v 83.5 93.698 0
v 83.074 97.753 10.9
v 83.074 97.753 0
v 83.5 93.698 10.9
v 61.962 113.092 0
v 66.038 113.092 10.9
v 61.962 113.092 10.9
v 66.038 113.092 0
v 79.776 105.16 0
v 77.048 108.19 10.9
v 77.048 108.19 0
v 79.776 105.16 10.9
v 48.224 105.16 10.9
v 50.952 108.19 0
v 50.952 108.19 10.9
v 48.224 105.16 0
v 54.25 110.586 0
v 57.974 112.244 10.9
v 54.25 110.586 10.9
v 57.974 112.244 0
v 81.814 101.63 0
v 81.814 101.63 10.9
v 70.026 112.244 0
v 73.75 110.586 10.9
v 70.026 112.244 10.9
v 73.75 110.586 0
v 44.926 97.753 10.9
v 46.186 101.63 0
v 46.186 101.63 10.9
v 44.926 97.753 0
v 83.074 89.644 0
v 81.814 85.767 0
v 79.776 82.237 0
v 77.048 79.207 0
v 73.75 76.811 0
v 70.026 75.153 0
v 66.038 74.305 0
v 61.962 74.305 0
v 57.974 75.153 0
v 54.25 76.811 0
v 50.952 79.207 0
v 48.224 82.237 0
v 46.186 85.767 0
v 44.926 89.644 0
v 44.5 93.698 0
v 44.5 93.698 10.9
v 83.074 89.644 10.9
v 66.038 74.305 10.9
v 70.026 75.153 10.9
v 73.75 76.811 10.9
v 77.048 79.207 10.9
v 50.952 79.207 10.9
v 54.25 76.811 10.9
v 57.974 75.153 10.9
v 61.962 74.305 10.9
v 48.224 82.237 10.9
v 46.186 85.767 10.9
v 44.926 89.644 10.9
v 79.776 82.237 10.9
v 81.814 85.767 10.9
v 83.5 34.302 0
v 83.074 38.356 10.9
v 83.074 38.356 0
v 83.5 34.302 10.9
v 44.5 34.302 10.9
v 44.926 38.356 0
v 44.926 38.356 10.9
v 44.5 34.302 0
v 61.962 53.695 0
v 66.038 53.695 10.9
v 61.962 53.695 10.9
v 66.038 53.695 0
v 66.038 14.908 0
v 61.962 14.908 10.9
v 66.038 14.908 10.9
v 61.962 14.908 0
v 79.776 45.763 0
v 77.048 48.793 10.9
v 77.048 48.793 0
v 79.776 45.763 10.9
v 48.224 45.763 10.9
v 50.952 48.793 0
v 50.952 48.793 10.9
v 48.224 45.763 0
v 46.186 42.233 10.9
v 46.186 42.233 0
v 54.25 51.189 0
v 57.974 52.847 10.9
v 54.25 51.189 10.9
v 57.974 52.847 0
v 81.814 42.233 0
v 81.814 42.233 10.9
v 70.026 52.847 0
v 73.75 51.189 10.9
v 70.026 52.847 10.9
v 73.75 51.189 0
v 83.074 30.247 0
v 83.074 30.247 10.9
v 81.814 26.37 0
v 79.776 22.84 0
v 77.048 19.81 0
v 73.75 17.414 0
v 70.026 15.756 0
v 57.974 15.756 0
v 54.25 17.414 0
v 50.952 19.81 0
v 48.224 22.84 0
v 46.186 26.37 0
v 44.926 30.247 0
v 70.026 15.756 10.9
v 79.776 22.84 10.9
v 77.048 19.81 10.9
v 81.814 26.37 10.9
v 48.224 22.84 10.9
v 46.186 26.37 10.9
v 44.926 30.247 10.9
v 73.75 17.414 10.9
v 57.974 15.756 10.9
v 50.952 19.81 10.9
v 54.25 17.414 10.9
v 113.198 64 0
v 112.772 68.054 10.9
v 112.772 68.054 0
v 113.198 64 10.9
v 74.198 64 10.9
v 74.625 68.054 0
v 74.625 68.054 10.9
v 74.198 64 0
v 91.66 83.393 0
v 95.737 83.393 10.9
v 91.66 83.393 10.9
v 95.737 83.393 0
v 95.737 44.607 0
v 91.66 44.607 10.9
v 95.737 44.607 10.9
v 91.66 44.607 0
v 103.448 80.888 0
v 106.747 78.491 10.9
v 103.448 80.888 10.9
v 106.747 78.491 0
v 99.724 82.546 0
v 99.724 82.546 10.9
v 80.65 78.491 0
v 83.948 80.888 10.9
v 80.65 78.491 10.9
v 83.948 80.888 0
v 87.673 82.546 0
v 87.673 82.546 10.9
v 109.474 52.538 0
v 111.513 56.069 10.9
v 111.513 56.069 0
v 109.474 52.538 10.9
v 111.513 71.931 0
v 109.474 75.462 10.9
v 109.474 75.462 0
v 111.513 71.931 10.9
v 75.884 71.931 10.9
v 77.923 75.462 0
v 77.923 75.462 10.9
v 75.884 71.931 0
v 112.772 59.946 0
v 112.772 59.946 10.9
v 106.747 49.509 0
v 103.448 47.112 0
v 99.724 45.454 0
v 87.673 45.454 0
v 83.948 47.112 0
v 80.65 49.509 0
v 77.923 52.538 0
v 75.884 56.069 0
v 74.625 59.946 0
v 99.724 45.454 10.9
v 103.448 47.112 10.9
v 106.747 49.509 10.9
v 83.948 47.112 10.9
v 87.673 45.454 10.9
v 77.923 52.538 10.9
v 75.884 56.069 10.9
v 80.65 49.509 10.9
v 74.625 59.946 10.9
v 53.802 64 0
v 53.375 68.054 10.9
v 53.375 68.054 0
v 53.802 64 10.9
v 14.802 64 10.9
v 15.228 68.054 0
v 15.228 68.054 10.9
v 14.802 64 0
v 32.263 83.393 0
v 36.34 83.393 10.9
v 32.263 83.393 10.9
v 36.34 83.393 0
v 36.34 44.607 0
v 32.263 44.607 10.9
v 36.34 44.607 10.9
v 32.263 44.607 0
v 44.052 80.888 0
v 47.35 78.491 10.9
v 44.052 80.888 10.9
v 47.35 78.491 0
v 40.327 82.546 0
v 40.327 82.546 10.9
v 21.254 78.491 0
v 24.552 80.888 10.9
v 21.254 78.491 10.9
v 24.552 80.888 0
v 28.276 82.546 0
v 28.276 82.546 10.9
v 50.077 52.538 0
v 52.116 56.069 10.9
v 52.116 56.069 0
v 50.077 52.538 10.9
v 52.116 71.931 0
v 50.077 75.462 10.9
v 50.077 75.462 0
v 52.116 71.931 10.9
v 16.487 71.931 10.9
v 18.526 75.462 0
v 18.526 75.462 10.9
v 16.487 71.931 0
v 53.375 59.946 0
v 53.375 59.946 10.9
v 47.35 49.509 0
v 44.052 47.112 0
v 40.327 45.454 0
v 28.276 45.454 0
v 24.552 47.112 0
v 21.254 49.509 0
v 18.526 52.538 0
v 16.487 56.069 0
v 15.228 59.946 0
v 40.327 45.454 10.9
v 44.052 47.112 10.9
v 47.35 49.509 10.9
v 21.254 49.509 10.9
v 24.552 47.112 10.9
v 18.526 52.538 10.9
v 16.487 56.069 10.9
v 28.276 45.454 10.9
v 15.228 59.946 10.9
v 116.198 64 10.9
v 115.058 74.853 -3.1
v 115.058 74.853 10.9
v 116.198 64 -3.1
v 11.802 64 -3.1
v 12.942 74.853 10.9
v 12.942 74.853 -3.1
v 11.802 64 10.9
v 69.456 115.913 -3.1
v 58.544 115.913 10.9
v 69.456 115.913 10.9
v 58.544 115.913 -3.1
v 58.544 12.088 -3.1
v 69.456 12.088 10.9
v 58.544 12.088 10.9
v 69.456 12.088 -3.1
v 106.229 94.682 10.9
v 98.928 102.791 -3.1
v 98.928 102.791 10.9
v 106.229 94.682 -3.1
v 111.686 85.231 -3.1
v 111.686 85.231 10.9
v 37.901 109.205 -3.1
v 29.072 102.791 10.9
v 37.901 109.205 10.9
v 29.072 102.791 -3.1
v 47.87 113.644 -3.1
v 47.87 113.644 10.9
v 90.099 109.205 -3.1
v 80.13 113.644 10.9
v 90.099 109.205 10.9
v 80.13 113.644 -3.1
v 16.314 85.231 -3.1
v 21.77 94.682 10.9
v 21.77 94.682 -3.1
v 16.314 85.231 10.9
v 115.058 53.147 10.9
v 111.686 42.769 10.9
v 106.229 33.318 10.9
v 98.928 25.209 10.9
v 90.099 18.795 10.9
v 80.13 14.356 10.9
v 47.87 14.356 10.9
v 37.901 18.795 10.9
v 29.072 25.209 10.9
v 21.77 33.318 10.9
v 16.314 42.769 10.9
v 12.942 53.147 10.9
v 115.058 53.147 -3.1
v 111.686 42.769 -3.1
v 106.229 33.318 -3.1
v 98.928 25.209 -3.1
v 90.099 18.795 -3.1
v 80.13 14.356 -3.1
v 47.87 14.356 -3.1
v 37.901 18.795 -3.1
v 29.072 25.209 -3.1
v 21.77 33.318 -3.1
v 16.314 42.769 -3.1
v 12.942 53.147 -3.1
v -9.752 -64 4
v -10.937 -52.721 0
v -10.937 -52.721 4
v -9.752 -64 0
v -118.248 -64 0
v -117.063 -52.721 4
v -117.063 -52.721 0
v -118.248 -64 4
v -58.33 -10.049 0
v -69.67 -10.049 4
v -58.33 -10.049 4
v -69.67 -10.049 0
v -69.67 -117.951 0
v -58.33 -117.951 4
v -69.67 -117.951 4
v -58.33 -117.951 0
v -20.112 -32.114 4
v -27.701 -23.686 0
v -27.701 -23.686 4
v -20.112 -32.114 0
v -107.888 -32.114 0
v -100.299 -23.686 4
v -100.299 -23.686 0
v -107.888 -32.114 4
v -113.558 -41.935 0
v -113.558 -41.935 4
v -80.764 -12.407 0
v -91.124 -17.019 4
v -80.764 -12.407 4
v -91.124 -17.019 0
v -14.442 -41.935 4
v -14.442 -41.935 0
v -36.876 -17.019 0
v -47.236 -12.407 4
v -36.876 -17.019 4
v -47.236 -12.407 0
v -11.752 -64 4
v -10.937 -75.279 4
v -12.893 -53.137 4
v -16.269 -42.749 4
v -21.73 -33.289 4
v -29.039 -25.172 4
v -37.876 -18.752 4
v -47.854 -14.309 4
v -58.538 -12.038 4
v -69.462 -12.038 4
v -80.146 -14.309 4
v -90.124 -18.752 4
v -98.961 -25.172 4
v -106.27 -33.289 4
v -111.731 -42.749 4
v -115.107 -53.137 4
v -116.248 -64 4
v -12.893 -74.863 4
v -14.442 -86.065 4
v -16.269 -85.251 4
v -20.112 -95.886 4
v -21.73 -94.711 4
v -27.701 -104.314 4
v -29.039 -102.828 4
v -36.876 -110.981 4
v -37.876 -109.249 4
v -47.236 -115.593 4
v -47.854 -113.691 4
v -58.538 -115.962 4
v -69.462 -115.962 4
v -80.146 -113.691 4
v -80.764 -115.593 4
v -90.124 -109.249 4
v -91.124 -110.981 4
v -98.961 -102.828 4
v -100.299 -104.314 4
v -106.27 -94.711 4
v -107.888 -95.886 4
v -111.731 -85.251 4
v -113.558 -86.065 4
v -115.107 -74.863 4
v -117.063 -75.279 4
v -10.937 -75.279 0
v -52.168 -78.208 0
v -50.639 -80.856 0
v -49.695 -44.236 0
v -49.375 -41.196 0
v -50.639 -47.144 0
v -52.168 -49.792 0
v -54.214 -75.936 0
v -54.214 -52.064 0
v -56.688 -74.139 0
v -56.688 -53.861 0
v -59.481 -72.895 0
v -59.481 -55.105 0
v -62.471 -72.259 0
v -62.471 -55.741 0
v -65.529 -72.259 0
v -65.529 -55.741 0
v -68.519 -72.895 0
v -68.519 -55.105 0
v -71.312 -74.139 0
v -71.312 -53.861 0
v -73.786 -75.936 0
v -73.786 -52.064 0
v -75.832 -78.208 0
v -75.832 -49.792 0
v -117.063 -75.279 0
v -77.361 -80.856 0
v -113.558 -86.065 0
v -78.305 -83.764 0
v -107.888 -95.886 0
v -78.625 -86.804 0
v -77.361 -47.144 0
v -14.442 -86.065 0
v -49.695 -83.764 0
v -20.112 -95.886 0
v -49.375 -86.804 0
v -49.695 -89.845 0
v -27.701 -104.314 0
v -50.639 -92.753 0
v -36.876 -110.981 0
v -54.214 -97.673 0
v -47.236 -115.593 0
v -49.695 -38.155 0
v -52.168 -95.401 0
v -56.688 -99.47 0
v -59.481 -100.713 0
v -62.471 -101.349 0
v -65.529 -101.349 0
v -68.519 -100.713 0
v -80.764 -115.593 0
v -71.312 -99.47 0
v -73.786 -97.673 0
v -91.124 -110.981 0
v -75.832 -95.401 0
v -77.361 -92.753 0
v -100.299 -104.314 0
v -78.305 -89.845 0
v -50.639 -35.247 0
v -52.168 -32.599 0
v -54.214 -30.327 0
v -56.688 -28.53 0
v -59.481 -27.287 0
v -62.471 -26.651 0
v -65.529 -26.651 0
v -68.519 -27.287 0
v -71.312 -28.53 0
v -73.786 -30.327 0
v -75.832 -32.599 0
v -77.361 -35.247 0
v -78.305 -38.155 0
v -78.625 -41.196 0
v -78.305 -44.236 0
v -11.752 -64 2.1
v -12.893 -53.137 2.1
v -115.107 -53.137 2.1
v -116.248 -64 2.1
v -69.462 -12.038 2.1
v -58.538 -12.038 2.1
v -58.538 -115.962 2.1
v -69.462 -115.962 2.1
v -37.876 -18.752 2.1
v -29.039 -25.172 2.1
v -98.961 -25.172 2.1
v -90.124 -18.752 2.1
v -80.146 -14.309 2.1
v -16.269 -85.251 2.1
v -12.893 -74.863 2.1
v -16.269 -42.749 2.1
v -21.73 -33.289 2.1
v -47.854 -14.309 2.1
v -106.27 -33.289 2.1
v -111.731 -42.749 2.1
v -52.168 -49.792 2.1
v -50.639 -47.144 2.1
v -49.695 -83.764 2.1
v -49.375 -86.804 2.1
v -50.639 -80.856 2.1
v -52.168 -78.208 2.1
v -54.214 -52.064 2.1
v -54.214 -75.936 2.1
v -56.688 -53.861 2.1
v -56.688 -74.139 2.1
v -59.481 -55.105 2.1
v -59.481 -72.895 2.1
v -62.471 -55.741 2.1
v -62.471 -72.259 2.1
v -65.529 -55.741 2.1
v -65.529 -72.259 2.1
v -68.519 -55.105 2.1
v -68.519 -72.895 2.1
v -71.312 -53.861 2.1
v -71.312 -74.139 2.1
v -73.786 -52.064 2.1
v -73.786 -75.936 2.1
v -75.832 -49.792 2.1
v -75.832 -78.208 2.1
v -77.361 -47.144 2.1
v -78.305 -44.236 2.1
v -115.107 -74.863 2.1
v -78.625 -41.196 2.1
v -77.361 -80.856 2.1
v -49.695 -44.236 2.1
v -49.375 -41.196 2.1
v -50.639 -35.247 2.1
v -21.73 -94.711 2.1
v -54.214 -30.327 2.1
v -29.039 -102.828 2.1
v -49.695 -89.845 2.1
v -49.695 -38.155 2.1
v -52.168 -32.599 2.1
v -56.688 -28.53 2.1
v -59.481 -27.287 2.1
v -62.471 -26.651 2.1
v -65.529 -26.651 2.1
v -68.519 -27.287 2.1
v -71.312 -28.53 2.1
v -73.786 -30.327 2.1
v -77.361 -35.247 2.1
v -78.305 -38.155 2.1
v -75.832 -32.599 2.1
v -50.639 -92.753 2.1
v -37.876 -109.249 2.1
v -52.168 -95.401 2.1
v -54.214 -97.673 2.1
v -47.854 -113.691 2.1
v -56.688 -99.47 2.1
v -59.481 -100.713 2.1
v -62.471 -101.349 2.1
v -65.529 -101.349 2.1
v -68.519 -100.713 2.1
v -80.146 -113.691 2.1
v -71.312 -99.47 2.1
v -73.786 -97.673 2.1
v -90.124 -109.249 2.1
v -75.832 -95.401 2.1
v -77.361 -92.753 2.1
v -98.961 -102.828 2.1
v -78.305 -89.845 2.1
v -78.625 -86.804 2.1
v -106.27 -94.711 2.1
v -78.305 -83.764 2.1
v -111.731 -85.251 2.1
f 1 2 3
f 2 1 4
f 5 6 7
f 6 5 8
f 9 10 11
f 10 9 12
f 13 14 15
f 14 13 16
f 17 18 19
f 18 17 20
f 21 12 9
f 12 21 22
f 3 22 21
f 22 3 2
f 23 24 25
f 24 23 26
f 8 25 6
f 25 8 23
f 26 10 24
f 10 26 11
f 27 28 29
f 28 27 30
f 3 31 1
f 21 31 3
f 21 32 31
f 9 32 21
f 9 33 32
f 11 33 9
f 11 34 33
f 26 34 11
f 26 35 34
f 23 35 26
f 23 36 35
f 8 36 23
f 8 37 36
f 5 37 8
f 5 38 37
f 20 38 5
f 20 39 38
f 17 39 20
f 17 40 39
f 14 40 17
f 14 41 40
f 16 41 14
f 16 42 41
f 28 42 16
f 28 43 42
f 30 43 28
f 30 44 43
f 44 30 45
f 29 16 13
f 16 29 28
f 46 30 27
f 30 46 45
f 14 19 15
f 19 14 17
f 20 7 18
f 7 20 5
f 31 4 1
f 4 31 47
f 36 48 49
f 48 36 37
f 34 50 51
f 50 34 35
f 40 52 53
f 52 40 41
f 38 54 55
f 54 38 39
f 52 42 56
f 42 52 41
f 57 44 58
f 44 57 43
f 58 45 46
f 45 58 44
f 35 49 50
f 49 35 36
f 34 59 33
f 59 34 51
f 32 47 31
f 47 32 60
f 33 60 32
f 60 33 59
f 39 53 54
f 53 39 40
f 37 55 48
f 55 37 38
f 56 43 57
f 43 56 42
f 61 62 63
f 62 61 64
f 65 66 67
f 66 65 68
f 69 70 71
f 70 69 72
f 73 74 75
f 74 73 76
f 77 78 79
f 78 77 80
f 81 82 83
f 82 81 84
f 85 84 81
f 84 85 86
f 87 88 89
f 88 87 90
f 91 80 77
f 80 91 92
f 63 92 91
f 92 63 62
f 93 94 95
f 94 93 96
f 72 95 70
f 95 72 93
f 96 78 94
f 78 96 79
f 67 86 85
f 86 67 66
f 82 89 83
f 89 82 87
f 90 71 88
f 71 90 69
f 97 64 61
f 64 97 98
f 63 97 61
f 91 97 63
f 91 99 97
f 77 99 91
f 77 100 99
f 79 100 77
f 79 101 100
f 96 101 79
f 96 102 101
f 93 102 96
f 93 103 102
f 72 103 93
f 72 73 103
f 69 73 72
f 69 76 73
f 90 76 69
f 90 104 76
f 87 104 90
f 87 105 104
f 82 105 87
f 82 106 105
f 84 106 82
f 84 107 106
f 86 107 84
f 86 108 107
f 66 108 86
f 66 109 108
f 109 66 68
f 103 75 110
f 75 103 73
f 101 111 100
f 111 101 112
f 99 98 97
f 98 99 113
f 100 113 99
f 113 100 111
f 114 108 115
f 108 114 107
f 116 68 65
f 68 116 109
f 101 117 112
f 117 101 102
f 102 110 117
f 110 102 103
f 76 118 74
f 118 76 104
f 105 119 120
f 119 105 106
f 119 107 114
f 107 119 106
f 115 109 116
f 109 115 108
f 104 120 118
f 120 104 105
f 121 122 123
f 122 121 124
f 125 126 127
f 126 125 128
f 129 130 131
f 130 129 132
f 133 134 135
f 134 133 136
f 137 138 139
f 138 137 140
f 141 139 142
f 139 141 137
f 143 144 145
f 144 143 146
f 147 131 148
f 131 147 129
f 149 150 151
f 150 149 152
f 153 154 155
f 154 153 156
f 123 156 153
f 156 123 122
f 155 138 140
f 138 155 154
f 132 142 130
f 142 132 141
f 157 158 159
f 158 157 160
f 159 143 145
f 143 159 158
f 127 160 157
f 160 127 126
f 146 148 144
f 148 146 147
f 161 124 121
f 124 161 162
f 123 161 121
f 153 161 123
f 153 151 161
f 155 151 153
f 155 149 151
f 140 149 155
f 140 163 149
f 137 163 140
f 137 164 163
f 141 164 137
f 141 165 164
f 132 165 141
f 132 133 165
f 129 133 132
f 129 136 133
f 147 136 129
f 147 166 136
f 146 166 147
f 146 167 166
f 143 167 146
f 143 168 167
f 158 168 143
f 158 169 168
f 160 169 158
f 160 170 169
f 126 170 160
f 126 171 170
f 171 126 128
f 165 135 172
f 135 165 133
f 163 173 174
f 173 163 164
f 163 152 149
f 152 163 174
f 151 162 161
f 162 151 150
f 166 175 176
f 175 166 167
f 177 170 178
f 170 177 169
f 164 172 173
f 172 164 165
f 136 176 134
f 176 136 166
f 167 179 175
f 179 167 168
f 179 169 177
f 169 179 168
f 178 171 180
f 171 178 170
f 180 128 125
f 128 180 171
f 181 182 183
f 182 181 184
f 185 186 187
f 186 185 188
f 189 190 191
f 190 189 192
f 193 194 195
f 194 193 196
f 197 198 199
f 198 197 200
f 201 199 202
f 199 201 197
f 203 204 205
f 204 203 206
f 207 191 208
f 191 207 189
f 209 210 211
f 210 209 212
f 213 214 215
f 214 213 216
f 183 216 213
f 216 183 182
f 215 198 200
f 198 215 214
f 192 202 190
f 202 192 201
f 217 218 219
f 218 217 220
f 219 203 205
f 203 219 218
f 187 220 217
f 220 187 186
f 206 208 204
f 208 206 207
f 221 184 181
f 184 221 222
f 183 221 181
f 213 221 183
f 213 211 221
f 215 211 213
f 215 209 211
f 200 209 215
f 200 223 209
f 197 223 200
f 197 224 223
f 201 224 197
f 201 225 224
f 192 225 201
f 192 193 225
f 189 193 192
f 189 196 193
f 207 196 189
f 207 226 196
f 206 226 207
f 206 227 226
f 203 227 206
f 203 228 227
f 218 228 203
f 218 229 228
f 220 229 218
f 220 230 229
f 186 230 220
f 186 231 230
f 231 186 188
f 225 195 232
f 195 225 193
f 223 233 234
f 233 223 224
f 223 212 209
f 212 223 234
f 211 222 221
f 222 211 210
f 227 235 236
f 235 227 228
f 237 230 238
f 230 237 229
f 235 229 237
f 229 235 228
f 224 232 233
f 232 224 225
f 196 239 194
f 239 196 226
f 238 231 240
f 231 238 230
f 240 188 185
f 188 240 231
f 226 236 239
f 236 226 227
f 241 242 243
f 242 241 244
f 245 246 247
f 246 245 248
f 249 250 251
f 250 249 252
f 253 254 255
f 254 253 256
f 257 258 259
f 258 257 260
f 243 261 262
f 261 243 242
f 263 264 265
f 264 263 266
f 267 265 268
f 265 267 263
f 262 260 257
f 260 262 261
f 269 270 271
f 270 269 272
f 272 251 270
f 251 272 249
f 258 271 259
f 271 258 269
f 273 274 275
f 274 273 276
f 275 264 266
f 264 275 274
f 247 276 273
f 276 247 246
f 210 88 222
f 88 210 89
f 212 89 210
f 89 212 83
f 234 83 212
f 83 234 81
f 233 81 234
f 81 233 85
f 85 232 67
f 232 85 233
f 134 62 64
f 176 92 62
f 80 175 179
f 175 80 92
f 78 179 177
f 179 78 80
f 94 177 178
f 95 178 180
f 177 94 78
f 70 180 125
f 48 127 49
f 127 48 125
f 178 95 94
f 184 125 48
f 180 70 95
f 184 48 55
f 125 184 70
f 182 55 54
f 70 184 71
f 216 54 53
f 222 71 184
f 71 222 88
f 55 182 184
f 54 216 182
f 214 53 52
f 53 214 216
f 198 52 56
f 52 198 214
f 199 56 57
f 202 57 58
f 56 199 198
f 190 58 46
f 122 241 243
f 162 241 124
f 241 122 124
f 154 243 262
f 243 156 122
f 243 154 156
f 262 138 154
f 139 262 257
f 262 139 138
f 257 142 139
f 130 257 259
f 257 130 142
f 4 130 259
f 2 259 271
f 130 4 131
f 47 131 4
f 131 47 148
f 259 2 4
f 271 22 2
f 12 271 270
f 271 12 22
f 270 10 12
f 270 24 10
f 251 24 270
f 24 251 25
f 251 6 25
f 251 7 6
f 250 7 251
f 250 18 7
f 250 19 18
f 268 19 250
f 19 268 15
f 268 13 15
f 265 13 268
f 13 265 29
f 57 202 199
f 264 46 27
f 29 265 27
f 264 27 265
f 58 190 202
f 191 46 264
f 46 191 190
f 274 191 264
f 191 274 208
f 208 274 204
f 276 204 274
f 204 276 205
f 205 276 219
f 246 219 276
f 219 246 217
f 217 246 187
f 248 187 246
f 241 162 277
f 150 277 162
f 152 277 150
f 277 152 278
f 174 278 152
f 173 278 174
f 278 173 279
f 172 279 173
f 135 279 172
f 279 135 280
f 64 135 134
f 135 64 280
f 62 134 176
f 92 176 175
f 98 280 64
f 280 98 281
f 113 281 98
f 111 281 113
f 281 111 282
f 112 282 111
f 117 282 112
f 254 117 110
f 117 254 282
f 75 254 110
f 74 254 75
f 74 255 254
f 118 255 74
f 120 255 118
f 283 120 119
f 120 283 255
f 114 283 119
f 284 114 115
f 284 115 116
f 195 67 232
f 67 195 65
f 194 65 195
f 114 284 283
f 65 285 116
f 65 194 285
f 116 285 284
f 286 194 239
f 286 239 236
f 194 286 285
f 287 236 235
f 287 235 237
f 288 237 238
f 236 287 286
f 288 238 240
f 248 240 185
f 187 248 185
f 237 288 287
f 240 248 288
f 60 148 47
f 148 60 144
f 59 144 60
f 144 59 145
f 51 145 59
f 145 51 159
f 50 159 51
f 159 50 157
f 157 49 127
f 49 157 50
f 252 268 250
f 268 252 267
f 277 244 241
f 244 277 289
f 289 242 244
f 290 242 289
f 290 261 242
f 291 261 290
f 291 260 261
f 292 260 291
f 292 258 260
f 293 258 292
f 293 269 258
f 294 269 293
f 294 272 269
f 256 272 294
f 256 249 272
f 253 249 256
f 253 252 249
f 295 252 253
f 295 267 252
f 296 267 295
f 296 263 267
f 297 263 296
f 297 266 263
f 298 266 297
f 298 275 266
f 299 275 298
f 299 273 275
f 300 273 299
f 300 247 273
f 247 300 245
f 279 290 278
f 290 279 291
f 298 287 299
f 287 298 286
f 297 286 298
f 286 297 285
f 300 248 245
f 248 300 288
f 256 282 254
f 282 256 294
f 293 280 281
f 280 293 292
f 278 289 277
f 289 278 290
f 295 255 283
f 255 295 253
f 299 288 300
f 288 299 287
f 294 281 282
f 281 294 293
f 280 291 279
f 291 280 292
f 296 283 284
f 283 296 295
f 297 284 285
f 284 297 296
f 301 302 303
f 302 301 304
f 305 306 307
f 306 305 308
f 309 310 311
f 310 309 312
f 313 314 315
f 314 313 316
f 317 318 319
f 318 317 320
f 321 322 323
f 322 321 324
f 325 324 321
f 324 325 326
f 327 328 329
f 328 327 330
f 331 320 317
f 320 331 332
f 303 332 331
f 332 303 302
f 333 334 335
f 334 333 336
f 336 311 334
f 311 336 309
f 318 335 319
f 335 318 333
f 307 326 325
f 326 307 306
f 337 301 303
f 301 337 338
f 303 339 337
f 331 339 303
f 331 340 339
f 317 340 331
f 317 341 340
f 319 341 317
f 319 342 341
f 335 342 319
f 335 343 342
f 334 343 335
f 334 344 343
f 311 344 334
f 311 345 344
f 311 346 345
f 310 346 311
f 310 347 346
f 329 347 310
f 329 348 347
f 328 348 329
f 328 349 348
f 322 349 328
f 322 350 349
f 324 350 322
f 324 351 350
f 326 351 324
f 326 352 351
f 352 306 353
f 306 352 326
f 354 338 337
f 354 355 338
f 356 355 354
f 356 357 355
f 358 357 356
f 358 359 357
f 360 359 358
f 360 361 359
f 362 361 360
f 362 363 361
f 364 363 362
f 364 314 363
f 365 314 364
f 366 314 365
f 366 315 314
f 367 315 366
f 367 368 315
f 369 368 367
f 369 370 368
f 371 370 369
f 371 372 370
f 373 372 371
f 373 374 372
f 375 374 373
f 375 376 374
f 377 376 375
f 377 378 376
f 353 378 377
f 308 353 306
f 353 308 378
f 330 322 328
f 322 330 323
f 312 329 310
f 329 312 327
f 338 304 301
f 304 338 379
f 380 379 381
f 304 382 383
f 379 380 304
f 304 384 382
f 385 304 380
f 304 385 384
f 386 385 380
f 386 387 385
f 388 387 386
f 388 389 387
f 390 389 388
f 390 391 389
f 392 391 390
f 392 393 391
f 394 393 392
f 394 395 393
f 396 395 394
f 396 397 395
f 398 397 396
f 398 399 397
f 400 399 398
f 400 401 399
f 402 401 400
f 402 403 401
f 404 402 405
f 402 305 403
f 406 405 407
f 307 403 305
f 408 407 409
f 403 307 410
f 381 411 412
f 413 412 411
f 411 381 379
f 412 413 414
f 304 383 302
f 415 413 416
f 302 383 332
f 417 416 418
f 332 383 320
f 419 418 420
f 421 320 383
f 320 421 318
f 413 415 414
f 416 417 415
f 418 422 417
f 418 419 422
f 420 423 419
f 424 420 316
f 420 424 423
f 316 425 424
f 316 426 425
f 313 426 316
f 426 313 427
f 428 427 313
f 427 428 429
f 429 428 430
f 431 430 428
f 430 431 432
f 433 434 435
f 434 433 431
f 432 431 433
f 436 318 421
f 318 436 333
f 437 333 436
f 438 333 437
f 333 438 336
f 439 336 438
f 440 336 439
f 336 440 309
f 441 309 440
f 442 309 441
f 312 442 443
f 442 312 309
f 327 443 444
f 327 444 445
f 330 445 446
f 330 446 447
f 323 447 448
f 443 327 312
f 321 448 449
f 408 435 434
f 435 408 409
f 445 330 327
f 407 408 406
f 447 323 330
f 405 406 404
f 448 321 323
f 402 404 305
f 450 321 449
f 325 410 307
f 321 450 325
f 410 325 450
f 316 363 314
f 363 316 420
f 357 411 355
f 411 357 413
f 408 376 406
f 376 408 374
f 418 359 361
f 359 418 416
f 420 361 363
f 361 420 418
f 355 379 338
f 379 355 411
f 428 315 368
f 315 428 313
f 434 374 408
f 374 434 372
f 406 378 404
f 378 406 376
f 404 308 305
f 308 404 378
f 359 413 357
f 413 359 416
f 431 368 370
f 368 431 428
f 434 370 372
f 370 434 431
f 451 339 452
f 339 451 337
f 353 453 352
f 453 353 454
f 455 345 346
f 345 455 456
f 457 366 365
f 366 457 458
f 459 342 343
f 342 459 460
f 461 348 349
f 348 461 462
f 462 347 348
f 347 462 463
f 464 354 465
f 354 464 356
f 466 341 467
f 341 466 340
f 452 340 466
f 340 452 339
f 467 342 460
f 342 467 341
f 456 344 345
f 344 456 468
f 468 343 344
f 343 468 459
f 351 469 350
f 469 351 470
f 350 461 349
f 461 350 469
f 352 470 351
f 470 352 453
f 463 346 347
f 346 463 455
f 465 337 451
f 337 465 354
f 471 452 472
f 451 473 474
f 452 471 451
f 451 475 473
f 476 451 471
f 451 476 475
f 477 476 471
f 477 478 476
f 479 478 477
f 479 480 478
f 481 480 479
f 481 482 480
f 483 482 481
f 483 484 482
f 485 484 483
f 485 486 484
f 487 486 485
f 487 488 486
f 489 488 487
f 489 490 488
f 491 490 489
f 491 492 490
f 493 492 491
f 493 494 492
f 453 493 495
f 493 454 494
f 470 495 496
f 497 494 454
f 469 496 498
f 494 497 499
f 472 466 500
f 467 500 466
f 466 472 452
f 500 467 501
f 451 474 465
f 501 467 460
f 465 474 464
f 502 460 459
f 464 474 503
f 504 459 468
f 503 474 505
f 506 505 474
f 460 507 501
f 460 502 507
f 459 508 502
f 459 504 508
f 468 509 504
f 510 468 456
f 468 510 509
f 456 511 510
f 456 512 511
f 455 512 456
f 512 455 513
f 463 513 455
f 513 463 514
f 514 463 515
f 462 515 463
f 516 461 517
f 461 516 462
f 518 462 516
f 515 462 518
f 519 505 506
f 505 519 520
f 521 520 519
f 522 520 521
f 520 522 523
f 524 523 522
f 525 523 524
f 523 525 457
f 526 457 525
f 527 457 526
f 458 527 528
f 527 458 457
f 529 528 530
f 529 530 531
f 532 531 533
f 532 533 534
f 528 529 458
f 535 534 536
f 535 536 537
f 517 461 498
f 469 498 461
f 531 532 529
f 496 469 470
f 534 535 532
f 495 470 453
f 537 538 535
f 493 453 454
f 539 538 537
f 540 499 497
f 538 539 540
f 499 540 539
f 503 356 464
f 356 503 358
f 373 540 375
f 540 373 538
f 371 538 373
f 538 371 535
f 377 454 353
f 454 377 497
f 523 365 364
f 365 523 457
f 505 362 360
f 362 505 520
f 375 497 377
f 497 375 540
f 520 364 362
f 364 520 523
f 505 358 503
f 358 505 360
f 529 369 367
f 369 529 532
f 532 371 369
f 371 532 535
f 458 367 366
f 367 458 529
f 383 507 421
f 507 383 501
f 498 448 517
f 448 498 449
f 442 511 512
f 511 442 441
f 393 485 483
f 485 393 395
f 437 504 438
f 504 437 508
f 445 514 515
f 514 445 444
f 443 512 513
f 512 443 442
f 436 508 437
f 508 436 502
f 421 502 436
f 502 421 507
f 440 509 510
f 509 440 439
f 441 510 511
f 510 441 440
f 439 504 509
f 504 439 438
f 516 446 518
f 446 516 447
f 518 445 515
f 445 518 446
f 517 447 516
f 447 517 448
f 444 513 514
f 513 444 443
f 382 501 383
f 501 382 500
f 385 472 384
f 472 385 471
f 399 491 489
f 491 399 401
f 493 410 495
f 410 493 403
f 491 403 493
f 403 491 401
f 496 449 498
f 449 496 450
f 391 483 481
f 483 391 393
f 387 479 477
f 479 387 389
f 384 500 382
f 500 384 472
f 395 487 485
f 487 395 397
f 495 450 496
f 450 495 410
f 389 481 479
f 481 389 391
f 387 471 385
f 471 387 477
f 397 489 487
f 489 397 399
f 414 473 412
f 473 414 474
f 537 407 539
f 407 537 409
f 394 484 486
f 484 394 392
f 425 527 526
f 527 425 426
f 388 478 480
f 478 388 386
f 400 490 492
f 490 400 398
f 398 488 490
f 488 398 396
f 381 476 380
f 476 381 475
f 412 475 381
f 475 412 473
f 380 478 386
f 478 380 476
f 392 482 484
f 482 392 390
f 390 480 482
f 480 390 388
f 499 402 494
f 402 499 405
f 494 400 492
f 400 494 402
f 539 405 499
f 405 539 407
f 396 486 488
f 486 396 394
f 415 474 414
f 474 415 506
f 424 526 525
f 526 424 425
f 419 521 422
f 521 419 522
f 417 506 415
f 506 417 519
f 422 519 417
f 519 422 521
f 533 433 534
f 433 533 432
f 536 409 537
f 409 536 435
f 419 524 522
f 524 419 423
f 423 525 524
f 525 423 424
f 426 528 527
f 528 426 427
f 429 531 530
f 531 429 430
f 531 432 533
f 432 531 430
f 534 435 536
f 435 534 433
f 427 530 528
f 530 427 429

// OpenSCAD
// dist units: mm

//whole config
parts_sep = 64; // how much to separate the top and base
eps =0.1; // nudge amount



//base config
well_dia = 39; // diameter of the food well. Currently set to contain a 3.5 cm petri dish & allow for a 3.8 cm cover to be added while in well
well_rad = well_dia/2; // r: radius of the food well
well_depth=11; // depth of the food well. Currently set to fit flush against the top of a 1.1 cm petri dish.
wall_thick = 3; // wt: wall thickness between wells
bottom_thick = wall_thick; // the thickness of the bottom of the disk

//top config
pit_dia = (2+2*sqrt(2.0))*well_rad + (2+sqrt(2.0))*wall_thick+ eps; // pd: size of the hole the base will fit into (ie, base diameter nudged)
lip_thick = 2; // lt: how far past the base does the lip extend?
lip_overhang = 2; // lo: how far down the base does the lip extend?
lid_thick = 2; // dt: how thick is the lid?
rad_cont = 0.75; // rc: how much smaller is the entry port than the well?


// define a well
module well(x,y,d,r){
     translate([x,y,0]) cylinder(r=r, h=d);//, center=true) ;
}

// define four evenly spaced wells
module allswell(d,r, wt){
    cntr = (r + wt/2)*sqrt(2.0); // calculate the centering coord
    well(0,cntr,d,r);
    well(0,-cntr,d,r);
    well(cntr,0,d,r);
    well(-cntr,0,d,r);
}

// define the Big Disk holding the wells
module metawell(d, r, wt, bt){

    translate([0,0,-(bt+eps)]) cylinder(d=(2+2*sqrt(2.0))*r + (2+sqrt(2.0))*wt , h=d+bt) ;

    }




//well(0,0,well_depth, well_rad);

//allswell(well_depth, well_rad, wall_thick);

//metawell(well_depth, well_rad, wall_thick, bottom_thick);

module allYourBase(d, r, wt, bt){
    difference(){
        metawell(d, r, wt, bt);
        allswell(d, r, wt);
    }    
}




translate([parts_sep,parts_sep,0]) allYourBase(well_depth, well_rad, wall_thick, bottom_thick);


module lid(pd,lo,lt,dt){
    cylinder(d=pd+2*lt, h=dt+lo);
    }
module pittedLid(pd,lo,lt,dt){
    difference(){
        lid(pd,lo,lt,dt);
        translate([0,0,dt+eps]) cylinder(d=pd, h=lo);
    }
}

//translate([-parts_sep,-parts_sep,0]) pittedLid(pit_dia, lip_overhang, lip_thick, lid_thick);

module punches(d,r, wt){
    cntr = (r + wt/2)*sqrt(2.0); // calculate the centering coord
    well(0,cntr,d,r);
    well(0,-cntr,d,r);
}

//translate([-parts_sep,-parts_sep,0]) punches(lid_thick, well_rad*rad_cont, wall_thick);

module punchedPittedLid(pd,lo,lt,dt,r,rc,wt){
    difference(){
        pittedLid(pd, lo, lt, dt);
        translate([0,0,-0.9*eps]) punches(dt+2.1*eps, r*rc, wt);
    }
}

translate([-parts_sep,-parts_sep,0])  punchedPittedLid(pit_dia, lip_overhang, lip_thick, lid_thick, well_rad, rad_cont, wall_thick);
